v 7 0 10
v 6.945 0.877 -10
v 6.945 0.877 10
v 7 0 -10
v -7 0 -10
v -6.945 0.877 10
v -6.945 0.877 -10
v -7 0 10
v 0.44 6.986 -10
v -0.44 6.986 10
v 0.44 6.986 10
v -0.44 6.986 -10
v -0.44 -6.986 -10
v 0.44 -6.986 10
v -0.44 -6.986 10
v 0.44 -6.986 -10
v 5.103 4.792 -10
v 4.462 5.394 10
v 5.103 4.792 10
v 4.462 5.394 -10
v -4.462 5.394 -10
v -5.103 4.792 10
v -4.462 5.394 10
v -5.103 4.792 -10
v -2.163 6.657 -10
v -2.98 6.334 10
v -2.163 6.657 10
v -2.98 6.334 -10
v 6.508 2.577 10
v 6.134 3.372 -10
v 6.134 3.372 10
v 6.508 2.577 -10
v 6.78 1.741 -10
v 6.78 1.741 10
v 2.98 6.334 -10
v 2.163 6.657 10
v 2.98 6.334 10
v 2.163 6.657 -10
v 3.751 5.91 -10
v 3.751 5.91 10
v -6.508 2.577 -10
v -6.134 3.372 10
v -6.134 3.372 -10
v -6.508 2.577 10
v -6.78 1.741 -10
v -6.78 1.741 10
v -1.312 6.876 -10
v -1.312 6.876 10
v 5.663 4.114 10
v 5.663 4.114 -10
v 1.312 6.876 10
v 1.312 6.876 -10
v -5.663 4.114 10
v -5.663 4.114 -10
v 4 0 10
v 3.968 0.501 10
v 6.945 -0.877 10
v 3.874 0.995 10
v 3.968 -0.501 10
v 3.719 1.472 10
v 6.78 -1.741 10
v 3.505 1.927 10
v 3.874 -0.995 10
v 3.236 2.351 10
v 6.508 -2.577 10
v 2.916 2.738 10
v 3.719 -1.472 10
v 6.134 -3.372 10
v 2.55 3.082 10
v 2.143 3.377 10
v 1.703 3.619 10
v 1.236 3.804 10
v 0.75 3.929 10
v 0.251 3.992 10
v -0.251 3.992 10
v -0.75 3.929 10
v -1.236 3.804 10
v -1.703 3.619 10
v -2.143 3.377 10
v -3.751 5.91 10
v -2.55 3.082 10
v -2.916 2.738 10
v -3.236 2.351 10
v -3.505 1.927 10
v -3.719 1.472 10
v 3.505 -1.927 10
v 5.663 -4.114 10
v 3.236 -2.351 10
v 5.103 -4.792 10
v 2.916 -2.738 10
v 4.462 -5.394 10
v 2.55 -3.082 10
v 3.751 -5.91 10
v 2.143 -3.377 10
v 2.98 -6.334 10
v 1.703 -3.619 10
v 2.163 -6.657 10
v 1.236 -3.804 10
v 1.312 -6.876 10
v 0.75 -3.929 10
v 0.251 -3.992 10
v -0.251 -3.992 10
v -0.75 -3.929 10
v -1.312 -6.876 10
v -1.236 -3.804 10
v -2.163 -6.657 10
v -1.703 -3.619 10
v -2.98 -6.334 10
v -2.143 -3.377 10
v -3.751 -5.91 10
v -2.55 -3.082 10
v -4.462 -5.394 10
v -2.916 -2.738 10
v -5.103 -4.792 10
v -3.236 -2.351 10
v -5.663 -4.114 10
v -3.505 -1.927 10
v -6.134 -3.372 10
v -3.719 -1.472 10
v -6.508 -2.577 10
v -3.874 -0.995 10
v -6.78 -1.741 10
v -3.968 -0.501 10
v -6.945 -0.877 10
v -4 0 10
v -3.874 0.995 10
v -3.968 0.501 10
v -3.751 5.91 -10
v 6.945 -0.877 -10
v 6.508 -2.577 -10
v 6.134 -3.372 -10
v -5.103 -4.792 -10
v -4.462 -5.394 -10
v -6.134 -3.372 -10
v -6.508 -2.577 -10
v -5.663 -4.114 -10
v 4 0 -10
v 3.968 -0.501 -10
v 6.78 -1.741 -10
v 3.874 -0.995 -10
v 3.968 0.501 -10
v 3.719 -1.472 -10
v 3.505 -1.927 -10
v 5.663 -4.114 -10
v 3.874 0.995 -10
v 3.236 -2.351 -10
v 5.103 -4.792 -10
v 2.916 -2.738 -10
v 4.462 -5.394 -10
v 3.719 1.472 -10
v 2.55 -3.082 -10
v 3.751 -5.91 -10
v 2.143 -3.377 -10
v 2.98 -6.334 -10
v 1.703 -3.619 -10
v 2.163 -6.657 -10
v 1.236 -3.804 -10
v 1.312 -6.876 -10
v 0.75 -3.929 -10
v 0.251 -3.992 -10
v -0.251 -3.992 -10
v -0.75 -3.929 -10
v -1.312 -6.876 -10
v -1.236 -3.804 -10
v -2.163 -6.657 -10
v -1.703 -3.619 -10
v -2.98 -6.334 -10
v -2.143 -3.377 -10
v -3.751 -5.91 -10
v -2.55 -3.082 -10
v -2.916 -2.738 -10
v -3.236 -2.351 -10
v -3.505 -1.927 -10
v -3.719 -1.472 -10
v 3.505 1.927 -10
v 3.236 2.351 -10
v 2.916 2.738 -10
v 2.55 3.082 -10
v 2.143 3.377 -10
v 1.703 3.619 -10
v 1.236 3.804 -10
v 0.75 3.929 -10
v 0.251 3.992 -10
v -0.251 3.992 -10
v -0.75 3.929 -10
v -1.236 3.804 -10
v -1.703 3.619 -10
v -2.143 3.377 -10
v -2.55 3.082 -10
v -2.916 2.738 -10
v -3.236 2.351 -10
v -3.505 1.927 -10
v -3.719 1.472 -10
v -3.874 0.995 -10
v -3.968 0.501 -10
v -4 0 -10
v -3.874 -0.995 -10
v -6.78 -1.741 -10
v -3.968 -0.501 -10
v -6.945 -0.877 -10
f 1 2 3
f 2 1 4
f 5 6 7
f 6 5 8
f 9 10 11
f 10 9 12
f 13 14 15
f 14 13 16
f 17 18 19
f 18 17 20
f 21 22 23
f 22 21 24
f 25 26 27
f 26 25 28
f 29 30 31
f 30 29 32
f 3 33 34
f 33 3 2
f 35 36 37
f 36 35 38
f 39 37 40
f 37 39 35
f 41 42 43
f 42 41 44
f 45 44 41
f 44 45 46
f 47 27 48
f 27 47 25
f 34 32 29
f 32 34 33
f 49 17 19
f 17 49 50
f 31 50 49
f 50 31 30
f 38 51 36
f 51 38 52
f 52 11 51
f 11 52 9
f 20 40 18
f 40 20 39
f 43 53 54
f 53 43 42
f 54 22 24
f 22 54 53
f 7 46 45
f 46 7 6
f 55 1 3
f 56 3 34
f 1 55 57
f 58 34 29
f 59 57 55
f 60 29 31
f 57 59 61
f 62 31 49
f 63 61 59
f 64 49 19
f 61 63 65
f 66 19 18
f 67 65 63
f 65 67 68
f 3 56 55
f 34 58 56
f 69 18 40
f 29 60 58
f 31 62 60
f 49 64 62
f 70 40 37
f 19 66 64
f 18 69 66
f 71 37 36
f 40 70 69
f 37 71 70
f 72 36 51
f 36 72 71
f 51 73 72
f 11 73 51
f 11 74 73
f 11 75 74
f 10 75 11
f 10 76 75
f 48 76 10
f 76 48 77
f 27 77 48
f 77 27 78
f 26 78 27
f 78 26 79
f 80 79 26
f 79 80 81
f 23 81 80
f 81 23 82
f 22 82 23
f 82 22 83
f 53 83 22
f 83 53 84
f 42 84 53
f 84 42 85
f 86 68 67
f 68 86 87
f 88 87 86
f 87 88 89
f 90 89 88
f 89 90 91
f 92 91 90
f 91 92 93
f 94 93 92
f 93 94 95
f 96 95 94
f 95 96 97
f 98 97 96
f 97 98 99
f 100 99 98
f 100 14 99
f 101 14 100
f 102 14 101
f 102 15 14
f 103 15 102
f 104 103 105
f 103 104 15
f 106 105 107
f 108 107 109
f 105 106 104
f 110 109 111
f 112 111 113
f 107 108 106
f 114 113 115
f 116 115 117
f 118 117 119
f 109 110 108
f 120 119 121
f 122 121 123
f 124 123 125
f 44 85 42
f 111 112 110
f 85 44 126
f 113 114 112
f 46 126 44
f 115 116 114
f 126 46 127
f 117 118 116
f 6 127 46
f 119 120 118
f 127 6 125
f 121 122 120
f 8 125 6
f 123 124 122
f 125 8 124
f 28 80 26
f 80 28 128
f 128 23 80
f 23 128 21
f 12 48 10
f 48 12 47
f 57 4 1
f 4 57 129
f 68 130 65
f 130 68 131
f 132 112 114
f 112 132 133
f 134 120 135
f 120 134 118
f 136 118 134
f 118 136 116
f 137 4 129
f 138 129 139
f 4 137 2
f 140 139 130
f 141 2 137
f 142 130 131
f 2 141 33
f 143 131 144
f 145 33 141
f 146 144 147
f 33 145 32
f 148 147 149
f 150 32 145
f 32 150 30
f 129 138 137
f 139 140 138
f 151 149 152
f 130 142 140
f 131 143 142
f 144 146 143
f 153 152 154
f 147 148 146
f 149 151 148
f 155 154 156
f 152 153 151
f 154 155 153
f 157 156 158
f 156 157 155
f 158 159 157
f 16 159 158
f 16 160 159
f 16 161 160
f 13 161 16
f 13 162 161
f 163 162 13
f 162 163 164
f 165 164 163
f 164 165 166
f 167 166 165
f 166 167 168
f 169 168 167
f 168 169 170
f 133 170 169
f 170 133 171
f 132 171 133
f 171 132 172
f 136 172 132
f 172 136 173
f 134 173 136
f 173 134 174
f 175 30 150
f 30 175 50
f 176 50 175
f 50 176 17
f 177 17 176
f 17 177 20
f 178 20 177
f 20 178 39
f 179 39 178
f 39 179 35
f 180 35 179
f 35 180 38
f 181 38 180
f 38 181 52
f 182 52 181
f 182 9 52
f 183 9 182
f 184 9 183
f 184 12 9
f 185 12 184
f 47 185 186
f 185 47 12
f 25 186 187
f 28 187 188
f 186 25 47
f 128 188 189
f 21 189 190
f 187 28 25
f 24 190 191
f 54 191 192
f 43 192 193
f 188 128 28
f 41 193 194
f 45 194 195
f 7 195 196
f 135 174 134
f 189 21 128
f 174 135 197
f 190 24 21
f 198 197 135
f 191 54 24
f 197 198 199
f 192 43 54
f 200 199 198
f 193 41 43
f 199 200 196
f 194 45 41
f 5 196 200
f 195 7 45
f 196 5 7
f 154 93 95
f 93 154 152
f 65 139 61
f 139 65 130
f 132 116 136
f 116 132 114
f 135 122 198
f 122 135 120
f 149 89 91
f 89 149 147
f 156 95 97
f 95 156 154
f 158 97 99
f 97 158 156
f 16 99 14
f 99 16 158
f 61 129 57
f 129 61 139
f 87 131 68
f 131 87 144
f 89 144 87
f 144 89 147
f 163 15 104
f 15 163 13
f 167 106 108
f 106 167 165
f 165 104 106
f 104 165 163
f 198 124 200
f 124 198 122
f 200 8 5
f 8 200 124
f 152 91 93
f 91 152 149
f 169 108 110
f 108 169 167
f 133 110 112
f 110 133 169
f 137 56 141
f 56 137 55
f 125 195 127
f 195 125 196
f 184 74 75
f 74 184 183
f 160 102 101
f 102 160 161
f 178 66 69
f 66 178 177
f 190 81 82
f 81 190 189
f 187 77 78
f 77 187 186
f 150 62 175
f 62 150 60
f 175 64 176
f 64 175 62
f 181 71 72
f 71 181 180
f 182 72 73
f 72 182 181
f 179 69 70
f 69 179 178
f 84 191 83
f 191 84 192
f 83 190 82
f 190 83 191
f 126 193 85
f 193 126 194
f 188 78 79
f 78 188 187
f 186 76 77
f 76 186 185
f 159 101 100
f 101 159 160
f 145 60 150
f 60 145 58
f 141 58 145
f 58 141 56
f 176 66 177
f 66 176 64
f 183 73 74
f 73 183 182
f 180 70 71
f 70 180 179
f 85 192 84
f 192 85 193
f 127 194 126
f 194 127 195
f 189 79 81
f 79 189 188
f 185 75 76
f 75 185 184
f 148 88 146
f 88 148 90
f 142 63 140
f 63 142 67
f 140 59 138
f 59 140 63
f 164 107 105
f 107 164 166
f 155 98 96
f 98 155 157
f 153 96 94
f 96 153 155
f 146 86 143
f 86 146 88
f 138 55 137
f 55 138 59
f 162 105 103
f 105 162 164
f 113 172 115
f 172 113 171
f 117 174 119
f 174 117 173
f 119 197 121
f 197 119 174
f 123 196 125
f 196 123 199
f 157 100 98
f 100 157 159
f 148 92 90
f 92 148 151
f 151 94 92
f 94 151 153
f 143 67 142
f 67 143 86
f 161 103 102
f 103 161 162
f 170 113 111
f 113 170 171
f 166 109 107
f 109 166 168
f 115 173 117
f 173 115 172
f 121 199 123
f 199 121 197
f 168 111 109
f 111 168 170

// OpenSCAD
$fn = 50;


difference() {
	union() {
		translate(v = [0, 0, -10.0000000000]) {
			cylinder(h = 20, r = 7.0000000000);
		}
	}
	union() {
		translate(v = [0, 0, -100.0000000000]) {
			cylinder(h = 200, r = 4);
		}
	}
}
